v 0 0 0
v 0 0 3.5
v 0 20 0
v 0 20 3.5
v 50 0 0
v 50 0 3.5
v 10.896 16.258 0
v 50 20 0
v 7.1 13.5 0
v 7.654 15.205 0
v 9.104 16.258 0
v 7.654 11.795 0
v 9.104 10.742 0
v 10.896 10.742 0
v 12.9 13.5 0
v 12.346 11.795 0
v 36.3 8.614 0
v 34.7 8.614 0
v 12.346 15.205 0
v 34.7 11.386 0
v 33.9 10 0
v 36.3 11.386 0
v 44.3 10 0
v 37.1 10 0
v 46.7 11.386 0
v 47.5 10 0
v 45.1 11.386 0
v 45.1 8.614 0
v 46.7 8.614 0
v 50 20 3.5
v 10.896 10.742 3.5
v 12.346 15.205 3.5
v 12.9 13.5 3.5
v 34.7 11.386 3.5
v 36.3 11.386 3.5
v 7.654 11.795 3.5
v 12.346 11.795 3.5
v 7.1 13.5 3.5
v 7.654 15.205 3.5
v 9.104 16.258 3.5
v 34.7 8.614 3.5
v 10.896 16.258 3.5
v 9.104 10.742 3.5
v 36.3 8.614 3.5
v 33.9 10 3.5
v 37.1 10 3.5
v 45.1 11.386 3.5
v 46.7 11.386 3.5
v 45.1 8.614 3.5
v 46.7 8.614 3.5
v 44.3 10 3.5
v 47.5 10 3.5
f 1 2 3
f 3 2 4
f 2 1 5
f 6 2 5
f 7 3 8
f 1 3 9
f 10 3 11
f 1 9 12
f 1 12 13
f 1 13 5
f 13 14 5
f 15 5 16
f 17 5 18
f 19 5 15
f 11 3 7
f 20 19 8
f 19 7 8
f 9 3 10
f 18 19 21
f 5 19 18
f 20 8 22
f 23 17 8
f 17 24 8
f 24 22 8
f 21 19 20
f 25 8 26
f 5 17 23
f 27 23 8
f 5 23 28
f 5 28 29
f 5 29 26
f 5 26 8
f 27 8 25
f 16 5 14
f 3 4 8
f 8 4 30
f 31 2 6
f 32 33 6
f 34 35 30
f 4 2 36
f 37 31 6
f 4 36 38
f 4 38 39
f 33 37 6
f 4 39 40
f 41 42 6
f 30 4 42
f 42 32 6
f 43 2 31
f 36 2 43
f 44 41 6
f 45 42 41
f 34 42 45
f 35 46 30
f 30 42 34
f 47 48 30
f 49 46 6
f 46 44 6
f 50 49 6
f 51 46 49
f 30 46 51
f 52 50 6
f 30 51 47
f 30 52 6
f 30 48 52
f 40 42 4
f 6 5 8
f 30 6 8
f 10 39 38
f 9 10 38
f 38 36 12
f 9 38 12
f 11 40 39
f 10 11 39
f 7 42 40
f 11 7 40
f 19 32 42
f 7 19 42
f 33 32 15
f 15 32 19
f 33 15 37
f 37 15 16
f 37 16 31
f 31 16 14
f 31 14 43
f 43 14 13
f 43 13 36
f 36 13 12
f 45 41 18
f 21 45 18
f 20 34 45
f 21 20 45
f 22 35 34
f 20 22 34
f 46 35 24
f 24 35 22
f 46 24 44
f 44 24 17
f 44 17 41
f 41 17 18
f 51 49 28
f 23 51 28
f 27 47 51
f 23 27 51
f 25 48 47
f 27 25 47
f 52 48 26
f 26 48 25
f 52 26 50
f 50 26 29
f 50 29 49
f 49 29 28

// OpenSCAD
t = 0.4;
e = 3.5;
r1 = 1.2;
r2 = 2.5;

difference() {
	cube([50,20,e]);

	translate([10, 13.5, 0]) cylinder(e, r2 + t, r2 + t);
	translate([35.5, 10, 0]) {
		translate([10.4, 0, 0]) cylinder(e, r1 + t, r1 + t);
		cylinder(e, r1 + t, r1 + t);
	}
}
